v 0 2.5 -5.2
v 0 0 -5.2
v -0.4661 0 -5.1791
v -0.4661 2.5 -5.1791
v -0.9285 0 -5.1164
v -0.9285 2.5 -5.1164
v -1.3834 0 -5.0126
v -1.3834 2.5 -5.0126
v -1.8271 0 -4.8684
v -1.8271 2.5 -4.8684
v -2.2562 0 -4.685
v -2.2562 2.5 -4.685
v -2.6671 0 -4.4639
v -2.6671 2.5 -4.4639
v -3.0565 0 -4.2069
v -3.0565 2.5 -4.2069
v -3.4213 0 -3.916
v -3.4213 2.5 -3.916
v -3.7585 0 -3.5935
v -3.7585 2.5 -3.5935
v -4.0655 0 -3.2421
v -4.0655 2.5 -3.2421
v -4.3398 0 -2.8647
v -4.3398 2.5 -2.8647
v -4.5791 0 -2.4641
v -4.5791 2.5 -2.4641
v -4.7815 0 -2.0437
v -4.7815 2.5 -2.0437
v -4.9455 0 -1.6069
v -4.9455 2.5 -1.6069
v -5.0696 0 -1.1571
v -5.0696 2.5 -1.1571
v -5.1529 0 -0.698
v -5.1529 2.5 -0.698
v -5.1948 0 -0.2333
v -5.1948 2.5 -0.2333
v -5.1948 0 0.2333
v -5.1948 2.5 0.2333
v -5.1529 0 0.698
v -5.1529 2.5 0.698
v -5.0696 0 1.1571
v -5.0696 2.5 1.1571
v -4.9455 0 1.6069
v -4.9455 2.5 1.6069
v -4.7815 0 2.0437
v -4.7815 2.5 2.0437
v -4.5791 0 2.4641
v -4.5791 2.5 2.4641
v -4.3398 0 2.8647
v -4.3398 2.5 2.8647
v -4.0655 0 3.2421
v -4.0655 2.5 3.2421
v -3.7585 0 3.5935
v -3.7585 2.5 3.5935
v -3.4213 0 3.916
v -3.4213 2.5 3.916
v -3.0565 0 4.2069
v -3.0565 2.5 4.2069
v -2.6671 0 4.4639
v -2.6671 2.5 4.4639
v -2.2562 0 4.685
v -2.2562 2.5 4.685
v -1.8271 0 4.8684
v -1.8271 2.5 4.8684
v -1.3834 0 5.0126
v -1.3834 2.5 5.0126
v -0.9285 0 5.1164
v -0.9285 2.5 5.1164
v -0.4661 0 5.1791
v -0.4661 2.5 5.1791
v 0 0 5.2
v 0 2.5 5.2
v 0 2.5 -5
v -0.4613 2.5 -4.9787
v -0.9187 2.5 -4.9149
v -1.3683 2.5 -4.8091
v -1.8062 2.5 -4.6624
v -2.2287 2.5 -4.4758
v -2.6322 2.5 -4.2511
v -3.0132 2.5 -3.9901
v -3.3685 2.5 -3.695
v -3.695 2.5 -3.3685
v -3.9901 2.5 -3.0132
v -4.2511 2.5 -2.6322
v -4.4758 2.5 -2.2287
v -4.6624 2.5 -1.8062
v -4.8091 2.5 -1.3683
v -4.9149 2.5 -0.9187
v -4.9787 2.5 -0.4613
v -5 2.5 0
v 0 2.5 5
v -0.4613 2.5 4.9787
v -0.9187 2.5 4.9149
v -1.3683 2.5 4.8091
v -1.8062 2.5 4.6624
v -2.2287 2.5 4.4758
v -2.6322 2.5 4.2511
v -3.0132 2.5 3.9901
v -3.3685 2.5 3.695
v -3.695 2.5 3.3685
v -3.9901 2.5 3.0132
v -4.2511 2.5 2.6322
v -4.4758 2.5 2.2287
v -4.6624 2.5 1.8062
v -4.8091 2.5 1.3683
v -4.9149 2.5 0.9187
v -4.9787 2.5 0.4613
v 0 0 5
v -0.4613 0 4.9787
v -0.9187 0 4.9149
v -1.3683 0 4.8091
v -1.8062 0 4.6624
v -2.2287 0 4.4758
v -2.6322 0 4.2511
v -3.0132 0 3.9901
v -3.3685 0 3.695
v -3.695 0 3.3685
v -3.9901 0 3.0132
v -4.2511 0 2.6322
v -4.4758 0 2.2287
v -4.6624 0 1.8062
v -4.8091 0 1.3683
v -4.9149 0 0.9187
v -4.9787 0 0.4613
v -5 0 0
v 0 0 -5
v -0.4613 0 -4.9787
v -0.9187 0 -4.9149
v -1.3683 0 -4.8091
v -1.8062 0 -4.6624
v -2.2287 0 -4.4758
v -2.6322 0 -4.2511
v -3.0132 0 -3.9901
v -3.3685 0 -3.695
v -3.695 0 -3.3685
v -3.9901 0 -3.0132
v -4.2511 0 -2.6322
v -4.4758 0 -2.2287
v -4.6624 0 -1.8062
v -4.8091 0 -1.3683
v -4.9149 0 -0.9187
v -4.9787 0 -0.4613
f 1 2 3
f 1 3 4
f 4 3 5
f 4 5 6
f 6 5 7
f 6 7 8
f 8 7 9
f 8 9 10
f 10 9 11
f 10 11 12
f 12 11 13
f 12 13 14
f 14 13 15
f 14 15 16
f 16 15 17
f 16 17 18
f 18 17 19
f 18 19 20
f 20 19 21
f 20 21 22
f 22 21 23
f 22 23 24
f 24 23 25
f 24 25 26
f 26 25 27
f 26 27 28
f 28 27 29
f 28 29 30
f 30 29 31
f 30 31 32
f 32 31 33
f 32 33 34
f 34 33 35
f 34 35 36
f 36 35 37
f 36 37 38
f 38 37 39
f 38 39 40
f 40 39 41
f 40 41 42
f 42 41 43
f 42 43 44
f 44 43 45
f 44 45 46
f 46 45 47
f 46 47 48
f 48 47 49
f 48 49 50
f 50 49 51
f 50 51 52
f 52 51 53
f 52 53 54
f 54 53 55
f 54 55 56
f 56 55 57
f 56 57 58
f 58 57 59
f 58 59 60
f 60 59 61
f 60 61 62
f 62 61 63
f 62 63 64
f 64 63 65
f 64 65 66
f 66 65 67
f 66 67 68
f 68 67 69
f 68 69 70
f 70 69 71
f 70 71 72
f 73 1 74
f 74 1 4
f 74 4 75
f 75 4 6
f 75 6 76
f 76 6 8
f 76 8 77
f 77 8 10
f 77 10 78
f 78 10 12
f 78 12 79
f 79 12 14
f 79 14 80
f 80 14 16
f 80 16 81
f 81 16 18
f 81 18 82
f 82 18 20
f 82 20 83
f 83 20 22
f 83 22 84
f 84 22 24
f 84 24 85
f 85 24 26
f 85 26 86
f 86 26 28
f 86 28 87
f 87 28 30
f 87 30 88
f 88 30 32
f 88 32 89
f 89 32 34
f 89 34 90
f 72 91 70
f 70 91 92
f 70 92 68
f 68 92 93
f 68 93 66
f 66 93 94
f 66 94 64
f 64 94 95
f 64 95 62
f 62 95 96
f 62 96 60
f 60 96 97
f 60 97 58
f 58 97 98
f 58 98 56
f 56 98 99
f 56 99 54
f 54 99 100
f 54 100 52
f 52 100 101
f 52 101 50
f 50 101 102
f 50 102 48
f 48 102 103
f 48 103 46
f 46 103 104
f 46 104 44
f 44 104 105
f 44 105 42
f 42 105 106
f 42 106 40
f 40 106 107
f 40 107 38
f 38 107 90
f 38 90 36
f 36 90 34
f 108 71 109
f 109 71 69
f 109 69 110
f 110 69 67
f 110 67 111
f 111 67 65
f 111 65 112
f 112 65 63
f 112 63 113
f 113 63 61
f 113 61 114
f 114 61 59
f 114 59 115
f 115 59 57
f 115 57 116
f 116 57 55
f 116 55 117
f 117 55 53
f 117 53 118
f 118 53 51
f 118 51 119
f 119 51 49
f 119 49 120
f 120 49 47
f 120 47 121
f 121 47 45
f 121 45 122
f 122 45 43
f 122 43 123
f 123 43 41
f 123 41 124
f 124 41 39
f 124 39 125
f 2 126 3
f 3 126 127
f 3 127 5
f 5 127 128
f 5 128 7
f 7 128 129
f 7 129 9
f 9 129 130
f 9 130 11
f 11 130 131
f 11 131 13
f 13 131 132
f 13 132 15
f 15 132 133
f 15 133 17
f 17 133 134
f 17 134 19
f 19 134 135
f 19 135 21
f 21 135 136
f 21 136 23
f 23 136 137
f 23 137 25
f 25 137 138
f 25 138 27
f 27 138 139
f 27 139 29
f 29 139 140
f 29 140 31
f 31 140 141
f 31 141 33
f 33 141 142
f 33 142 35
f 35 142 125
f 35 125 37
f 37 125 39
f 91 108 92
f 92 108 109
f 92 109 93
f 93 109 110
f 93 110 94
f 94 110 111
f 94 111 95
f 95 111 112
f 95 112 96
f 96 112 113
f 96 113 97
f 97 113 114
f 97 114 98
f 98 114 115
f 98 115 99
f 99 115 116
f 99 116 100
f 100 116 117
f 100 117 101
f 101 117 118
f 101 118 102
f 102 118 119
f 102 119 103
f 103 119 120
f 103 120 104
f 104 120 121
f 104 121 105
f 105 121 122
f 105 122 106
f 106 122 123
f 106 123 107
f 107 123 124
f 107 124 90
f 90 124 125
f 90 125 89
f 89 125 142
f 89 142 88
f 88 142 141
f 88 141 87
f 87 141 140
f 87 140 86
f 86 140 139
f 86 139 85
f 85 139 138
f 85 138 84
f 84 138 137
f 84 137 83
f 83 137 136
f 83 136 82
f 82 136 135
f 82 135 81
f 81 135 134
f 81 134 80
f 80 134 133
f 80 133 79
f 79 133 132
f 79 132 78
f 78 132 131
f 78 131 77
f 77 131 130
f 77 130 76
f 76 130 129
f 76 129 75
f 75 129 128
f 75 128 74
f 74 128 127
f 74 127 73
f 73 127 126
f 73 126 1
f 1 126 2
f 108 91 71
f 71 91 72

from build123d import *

# Parameters (mm, degrees)
SKETCH_8_R               = 5.2
EXTRUDE_4_DEPTH          = 2.5
CUT_EXTRUDE_8_DEPTH      = 2.5
CUT_EXTRUDE_8_DEPTH_BACK = 2.5
SKETCH_11_R              = 5
CUT_EXTRUDE_9_DEPTH      = 2.5
CUT_EXTRUDE_9_DEPTH_BACK = 2.5
SKETCH_12_W              = 11.101506765
SKETCH_12_H              = 17.426783875


with BuildPart() as part:
    # 草图8 → 凸台-拉伸4 (new body)
    with BuildSketch(Plane(origin=(0, 0, 0), x_dir=(1, 0, 0), z_dir=(0, 1, 0))):
        Circle(SKETCH_8_R)
    extrude(amount=EXTRUDE_4_DEPTH)

    # 草图11 → 切除-拉伸8 (cut, two sides: drawn at the far end of the back side and taken through both)
    with BuildSketch(Plane(origin=(0, 0, 0), x_dir=(1, 0, 0), z_dir=(0, 1, 0)).offset(-CUT_EXTRUDE_8_DEPTH_BACK)):
        Circle(SKETCH_11_R)
    extrude(amount=CUT_EXTRUDE_8_DEPTH + CUT_EXTRUDE_8_DEPTH_BACK, mode=Mode.SUBTRACT)

    # 草图12 → 切除-拉伸9 (cut, two sides: drawn at the far end of the back side and taken through both)
    with BuildSketch(Plane(origin=(0, 0, 0), x_dir=(1, 0, 0), z_dir=(0, 1, 0)).offset(-CUT_EXTRUDE_9_DEPTH_BACK)):
        with Locations((5.550753382, -1.742678388)):
            Rectangle(SKETCH_12_W, SKETCH_12_H)
    extrude(amount=CUT_EXTRUDE_9_DEPTH + CUT_EXTRUDE_9_DEPTH_BACK, mode=Mode.SUBTRACT)


solid = part.part
